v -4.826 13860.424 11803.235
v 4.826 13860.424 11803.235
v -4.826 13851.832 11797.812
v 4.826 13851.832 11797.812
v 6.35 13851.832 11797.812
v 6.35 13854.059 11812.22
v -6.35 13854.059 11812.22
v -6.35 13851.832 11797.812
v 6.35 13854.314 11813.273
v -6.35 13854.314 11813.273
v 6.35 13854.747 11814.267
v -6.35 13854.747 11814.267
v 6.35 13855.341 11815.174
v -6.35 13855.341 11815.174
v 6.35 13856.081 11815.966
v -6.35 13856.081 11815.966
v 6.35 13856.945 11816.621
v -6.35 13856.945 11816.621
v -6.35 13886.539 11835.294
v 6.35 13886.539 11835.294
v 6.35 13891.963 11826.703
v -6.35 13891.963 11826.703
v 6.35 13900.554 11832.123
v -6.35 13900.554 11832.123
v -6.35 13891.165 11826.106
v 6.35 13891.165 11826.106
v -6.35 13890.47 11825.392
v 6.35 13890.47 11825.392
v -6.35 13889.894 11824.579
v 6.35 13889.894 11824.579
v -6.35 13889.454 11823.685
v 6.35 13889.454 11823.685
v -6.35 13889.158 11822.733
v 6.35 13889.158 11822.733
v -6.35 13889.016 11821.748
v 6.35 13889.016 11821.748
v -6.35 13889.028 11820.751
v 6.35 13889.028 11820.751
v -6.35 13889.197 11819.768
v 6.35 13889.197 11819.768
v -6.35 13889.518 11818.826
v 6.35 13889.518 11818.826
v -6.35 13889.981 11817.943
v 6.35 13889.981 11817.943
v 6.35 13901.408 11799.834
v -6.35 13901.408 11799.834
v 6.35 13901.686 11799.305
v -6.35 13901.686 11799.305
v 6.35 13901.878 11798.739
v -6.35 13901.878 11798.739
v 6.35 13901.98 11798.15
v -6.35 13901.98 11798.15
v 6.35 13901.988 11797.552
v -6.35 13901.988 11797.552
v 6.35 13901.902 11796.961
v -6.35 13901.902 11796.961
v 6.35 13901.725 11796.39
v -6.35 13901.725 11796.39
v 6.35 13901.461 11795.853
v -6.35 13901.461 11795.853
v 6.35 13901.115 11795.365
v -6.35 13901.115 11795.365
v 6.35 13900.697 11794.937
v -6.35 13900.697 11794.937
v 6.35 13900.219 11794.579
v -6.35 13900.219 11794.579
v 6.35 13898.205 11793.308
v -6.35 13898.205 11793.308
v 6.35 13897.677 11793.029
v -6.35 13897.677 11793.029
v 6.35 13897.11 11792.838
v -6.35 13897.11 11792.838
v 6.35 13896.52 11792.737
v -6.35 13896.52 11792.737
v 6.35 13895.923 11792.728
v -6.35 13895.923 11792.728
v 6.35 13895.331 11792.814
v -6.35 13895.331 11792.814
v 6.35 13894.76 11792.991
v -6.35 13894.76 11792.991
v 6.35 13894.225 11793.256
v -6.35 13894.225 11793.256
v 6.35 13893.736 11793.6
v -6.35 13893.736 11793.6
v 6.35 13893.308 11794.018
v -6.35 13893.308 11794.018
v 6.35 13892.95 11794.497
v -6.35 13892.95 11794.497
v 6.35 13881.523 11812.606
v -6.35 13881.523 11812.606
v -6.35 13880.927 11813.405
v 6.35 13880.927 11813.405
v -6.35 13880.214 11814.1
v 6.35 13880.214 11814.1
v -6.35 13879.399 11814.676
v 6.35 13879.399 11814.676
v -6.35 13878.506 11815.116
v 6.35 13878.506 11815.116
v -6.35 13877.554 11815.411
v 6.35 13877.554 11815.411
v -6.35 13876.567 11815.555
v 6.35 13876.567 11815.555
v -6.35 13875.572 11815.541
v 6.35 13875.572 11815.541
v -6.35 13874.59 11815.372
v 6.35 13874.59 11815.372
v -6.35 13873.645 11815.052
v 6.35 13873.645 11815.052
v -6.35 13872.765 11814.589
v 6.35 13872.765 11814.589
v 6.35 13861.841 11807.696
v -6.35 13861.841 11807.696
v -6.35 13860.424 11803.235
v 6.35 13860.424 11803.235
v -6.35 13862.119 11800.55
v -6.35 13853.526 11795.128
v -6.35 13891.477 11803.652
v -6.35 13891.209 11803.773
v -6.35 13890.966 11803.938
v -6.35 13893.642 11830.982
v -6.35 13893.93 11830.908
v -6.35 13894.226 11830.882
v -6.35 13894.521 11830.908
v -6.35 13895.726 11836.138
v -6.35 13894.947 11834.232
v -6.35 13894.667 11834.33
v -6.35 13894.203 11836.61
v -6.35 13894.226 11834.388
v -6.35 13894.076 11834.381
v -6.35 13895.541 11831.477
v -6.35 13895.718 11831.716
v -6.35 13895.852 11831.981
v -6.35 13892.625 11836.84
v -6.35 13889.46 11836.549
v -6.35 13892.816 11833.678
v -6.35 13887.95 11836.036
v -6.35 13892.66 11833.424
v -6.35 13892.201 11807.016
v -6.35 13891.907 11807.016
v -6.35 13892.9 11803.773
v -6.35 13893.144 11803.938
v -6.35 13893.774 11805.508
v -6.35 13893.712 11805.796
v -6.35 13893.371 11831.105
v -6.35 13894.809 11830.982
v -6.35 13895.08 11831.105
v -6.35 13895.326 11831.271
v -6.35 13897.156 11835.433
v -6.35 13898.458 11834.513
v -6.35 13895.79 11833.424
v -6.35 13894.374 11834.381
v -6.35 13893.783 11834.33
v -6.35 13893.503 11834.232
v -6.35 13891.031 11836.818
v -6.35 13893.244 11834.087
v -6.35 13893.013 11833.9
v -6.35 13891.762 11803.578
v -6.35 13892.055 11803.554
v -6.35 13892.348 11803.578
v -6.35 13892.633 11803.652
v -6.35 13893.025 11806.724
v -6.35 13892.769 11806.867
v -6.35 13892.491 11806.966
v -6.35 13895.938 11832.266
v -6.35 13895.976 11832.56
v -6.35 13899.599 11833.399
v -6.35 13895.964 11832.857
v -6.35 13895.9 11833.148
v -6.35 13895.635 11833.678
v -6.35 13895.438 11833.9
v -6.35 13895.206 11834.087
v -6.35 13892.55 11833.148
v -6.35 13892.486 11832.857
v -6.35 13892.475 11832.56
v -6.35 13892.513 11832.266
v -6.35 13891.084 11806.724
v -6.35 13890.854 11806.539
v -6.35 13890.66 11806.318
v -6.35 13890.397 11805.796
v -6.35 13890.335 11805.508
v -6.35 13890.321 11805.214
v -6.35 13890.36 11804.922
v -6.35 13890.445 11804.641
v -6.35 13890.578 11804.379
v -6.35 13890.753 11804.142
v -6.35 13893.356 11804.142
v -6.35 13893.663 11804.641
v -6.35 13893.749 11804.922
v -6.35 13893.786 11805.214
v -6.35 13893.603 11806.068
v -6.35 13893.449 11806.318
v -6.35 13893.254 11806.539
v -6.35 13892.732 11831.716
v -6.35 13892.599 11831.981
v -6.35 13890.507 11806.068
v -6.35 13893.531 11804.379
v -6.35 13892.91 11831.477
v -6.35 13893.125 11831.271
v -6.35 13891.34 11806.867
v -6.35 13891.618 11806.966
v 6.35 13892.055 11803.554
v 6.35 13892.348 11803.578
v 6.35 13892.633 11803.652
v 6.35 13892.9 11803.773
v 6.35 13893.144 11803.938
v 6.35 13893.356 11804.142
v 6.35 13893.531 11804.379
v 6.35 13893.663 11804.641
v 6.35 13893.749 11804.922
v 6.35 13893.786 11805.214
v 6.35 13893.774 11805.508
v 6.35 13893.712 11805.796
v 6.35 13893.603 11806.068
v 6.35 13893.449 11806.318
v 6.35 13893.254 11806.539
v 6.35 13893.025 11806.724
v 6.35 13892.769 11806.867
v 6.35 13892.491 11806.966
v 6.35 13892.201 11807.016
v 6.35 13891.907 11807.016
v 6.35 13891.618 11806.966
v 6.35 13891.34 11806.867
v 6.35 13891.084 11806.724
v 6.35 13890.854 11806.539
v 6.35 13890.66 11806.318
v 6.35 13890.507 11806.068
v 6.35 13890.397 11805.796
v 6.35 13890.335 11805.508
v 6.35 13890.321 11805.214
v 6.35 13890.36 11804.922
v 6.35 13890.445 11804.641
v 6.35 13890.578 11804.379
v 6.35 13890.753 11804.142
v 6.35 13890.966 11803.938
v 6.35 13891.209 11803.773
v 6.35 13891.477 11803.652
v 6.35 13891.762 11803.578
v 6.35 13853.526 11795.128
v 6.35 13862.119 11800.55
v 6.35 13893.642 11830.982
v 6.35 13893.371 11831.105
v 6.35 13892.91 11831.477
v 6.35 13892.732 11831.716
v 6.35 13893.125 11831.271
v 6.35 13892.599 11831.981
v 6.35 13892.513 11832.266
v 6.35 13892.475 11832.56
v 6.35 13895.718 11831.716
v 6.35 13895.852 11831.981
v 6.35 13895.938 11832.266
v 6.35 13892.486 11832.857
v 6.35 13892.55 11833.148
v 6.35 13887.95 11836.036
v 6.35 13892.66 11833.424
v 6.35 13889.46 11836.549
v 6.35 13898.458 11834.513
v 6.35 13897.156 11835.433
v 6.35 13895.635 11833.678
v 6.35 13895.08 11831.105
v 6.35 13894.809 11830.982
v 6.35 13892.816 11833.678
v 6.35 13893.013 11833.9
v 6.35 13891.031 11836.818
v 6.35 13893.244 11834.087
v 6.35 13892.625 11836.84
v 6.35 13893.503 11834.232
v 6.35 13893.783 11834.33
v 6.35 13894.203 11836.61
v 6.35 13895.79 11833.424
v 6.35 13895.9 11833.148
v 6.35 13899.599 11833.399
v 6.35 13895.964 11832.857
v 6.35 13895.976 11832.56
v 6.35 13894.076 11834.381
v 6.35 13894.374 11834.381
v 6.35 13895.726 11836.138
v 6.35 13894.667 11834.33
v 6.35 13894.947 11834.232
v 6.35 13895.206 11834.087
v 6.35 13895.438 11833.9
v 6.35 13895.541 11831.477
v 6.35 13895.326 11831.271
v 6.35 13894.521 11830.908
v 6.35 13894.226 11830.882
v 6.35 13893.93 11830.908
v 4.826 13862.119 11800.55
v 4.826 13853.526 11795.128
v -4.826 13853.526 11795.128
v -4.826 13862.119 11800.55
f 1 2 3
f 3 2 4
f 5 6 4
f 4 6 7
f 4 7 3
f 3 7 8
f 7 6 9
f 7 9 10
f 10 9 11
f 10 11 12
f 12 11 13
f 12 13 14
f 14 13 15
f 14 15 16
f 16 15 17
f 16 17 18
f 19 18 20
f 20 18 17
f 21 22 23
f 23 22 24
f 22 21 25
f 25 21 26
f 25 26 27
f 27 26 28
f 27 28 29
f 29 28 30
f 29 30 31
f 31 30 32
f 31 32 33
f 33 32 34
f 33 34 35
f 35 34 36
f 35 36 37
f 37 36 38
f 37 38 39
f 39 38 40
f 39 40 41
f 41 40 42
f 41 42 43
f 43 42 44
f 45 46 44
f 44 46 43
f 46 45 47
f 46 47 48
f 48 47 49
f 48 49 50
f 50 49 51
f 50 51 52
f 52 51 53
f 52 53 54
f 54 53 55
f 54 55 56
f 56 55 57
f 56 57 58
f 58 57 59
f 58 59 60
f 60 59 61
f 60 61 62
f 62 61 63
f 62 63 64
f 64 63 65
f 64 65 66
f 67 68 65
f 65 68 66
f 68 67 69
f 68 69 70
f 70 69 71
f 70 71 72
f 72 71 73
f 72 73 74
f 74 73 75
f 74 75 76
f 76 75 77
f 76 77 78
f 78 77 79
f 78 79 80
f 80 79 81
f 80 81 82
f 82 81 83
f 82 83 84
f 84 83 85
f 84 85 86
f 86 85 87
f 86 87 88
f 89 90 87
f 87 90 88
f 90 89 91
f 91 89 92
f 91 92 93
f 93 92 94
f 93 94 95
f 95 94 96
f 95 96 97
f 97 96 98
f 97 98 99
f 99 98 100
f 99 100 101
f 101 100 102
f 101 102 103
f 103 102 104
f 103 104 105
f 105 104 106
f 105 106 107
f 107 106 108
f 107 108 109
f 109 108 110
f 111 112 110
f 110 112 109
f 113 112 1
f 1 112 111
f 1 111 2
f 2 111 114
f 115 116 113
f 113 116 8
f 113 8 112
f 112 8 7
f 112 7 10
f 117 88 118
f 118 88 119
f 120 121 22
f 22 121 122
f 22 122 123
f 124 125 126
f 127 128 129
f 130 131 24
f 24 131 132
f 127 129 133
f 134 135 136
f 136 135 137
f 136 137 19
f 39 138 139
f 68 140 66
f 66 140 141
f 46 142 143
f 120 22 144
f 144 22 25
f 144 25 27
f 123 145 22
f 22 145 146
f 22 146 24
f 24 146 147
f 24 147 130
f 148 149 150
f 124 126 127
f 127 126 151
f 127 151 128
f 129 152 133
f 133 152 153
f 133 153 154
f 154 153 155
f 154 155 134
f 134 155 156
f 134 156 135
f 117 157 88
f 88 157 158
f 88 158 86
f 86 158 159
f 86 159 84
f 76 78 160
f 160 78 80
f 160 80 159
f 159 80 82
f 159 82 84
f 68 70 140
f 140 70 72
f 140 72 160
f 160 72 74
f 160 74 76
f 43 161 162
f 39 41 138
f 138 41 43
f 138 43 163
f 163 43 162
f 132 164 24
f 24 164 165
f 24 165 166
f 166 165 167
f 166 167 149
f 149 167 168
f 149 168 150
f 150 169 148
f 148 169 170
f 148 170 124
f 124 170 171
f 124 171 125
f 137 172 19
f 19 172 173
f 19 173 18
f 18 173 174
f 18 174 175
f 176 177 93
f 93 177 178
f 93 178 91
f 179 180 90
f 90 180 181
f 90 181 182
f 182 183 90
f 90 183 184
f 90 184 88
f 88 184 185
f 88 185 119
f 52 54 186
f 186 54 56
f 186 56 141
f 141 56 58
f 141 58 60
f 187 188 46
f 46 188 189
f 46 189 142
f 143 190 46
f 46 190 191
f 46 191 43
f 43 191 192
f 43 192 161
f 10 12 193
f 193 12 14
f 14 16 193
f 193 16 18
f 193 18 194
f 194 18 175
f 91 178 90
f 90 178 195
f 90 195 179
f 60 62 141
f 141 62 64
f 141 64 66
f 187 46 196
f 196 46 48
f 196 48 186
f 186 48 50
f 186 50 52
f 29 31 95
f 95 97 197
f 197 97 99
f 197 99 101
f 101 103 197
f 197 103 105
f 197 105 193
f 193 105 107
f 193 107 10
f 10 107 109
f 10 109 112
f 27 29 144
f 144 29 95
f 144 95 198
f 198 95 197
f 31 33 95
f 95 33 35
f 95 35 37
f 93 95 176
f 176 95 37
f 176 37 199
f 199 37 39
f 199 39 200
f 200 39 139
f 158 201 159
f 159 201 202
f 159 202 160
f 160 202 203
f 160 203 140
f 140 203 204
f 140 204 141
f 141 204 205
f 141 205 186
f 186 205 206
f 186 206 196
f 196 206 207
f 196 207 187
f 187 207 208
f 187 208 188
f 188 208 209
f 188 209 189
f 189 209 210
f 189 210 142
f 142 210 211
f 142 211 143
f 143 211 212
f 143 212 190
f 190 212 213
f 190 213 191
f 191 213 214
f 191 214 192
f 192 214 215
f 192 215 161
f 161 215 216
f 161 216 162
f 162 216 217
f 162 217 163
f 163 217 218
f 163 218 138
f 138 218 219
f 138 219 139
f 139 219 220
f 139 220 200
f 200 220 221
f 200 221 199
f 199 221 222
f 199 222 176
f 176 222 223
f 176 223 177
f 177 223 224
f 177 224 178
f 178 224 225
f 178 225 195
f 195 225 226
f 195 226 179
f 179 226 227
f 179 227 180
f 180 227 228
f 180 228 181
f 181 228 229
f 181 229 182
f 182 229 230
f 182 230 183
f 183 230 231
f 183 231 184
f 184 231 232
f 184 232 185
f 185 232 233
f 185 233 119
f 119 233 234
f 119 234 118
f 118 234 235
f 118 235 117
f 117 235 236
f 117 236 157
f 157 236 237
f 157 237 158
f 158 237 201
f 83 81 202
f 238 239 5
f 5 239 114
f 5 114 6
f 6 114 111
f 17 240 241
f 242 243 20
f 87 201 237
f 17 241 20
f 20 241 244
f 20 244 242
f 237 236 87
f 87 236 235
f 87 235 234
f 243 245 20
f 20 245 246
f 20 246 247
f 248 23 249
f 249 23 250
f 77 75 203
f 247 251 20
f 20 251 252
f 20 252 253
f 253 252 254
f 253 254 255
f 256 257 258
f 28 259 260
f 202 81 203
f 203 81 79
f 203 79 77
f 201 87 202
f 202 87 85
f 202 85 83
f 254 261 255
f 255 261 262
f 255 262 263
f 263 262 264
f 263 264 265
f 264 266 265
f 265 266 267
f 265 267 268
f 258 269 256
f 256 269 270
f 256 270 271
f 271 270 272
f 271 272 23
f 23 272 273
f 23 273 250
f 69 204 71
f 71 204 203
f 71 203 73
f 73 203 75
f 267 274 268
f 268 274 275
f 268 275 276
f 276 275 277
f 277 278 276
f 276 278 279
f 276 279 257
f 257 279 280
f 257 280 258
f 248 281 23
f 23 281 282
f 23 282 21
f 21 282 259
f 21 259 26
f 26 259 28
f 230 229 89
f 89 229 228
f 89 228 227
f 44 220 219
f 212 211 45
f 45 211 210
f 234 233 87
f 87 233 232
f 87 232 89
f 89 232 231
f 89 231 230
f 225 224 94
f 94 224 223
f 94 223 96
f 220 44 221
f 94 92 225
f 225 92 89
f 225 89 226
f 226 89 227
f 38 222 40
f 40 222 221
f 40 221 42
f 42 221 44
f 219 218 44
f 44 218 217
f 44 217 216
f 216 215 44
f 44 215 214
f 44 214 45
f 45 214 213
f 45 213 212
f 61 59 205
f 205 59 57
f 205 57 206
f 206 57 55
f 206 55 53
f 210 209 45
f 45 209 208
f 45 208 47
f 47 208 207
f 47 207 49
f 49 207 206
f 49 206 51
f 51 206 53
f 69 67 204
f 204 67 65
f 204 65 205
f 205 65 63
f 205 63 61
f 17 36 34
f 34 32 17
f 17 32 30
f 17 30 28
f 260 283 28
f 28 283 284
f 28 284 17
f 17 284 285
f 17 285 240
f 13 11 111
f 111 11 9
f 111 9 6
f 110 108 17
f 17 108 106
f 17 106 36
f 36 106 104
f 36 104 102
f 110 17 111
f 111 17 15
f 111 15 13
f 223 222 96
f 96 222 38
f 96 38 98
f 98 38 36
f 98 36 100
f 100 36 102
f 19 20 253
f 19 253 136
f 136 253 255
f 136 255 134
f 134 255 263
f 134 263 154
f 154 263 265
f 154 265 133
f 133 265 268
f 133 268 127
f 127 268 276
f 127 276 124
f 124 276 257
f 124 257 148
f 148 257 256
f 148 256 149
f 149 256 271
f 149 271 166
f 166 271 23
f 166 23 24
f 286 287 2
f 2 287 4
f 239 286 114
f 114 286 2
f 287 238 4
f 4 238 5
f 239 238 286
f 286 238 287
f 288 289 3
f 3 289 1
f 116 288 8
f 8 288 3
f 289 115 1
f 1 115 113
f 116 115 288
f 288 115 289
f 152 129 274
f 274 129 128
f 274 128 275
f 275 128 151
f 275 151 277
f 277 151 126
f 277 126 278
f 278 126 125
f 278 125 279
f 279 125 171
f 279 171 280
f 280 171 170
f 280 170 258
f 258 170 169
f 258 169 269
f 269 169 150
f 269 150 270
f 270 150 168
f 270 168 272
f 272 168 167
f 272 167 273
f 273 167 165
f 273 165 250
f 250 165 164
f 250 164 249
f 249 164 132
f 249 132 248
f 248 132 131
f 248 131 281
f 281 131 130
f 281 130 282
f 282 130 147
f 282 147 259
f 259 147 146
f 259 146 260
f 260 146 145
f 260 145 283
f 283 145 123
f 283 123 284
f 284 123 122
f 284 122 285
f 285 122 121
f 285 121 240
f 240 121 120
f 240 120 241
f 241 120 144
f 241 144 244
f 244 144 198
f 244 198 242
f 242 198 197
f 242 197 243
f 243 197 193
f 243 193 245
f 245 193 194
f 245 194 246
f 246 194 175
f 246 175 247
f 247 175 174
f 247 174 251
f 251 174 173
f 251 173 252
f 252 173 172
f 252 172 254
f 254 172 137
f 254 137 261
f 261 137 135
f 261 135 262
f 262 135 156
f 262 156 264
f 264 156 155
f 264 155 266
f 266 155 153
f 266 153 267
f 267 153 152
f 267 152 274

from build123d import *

# Parameters (mm, degrees)
BOSS_EXTRUDE1_DEPTH      = 6.35
BOSS_EXTRUDE1_DEPTH_BACK = 6.35
SKETCH2_R                = 1.733880633
FILLET1_R                = 10.16
BOSS_EXTRUDE3_DEPTH      = 3.175
SKETCH7_R                = 1.7526
CUT_EXTRUDE3_DEPTH       = 22.606


with BuildPart() as part:
    # Sketch2 → Boss-Extrude1 (new, two sides: drawn at the far end of the back side and taken through both)
    with BuildSketch(Plane(origin=(0, 13820.707967808, 11763.157588594), x_dir=(0, 0.8457184946773667, 0.533629298071844), z_dir=(1, 0, 0)).offset(-BOSS_EXTRUDE1_DEPTH_BACK)):
        with BuildLine():
            Line((77.82010292, 2.698073613), (77.82010292, -12.045648124))
            ThreePointArc((77.82010292, -12.045648124), (78.936026083, -14.73972496), (81.63010292, -15.855648124))
            Line((81.63010292, -15.855648124), (84.011557282, -15.855648124))
            ThreePointArc((84.011557282, -15.855648124), (86.705634118, -14.73972496), (87.821557282, -12.045648124))
            Line((87.821557282, -12.045648124), (87.821557282, 2.698073613))
            Line((87.821557282, 2.698073613), (87.821557282, 9.367220025))
            ThreePointArc((87.821557282, 9.367220025), (89.681429221, 13.857348086), (94.171557282, 15.717220025))
            Line((94.171557282, 15.717220025), (104.328561269, 15.717220025))
            Line((104.328561269, 15.717220025), (104.328561269, 25.877220025))
            Line((104.328561269, 25.877220025), (59.175813007, 25.877220025))
            ThreePointArc((59.175813007, 25.877220025), (56.544296522, 25.306287509), (54.385982659, 23.696155769))
            Line((54.385982659, 23.696155769), (44.81523307, 12.7))
            Line((44.81523307, 12.7), (53.583504994, 12.7))
            Line((53.583504994, 12.7), (54.97523307, 12.7))
            Line((54.97523307, 12.7), (56.039282698, 13.597053748))
            Line((56.039282698, 13.597053748), (58.554139967, 15.717220025))
            Line((58.554139967, 15.717220025), (71.47010292, 15.717220025))
            ThreePointArc((71.47010292, 15.717220025), (75.96023098, 13.857348086), (77.82010292, 9.367220025))
            Line((77.82010292, 9.367220025), (77.82010292, 2.698073613))
        make_face()
        with Locations(Location((82.820830101, -2.442575088, 0), (0, 0, 237.748998542))):
            Circle(SKETCH2_R, mode=Mode.SUBTRACT)
    extrude(amount=BOSS_EXTRUDE1_DEPTH + BOSS_EXTRUDE1_DEPTH_BACK)

    # Fillet1
    fillet1_edges = [part.edges().sort_by_distance(p)[0] for p in [
        (0, 13895.131718838, 11840.715209079),
    ]]
    fillet(fillet1_edges, radius=FILLET1_R - 0.0001)  # a hair under: the kernel refuses the full size

    # Sketch5 → Boss-Extrude3 (add)
    with BuildSketch(Plane(origin=(0, -1379.90412378, 2186.930969826), x_dir=(-1, 0, 0), z_dir=(0, 0.5336292980726433, -0.8457184946768624))):
        Polygon((4.826, 18020.569098092), (4.826, 18011.9803546), (4.826, 18010.409098092), (6.35, 18010.409098092), (6.35, 18012.025656104), (6.35, 18020.569098092), align=None)
        Polygon((-6.35, 18011.9803546), (-6.35, 18020.569098092), (-4.826, 18020.569098092), (-4.826, 18011.9803546), (-4.826, 18010.409098092), (-6.35, 18010.409098092), align=None)
    extrude(amount=BOSS_EXTRUDE3_DEPTH)

    # Sketch7 → Cut-Extrude3 (cut)
    with BuildSketch(Plane(origin=(6.35, 0, 0), x_dir=(0, 0, -1), z_dir=(1, 0, 0))):
        with Locations((-11832.634859183, 13894.225281819)):
            Circle(SKETCH7_R)
    extrude(amount=-CUT_EXTRUDE3_DEPTH, mode=Mode.SUBTRACT)


solid = part.part
